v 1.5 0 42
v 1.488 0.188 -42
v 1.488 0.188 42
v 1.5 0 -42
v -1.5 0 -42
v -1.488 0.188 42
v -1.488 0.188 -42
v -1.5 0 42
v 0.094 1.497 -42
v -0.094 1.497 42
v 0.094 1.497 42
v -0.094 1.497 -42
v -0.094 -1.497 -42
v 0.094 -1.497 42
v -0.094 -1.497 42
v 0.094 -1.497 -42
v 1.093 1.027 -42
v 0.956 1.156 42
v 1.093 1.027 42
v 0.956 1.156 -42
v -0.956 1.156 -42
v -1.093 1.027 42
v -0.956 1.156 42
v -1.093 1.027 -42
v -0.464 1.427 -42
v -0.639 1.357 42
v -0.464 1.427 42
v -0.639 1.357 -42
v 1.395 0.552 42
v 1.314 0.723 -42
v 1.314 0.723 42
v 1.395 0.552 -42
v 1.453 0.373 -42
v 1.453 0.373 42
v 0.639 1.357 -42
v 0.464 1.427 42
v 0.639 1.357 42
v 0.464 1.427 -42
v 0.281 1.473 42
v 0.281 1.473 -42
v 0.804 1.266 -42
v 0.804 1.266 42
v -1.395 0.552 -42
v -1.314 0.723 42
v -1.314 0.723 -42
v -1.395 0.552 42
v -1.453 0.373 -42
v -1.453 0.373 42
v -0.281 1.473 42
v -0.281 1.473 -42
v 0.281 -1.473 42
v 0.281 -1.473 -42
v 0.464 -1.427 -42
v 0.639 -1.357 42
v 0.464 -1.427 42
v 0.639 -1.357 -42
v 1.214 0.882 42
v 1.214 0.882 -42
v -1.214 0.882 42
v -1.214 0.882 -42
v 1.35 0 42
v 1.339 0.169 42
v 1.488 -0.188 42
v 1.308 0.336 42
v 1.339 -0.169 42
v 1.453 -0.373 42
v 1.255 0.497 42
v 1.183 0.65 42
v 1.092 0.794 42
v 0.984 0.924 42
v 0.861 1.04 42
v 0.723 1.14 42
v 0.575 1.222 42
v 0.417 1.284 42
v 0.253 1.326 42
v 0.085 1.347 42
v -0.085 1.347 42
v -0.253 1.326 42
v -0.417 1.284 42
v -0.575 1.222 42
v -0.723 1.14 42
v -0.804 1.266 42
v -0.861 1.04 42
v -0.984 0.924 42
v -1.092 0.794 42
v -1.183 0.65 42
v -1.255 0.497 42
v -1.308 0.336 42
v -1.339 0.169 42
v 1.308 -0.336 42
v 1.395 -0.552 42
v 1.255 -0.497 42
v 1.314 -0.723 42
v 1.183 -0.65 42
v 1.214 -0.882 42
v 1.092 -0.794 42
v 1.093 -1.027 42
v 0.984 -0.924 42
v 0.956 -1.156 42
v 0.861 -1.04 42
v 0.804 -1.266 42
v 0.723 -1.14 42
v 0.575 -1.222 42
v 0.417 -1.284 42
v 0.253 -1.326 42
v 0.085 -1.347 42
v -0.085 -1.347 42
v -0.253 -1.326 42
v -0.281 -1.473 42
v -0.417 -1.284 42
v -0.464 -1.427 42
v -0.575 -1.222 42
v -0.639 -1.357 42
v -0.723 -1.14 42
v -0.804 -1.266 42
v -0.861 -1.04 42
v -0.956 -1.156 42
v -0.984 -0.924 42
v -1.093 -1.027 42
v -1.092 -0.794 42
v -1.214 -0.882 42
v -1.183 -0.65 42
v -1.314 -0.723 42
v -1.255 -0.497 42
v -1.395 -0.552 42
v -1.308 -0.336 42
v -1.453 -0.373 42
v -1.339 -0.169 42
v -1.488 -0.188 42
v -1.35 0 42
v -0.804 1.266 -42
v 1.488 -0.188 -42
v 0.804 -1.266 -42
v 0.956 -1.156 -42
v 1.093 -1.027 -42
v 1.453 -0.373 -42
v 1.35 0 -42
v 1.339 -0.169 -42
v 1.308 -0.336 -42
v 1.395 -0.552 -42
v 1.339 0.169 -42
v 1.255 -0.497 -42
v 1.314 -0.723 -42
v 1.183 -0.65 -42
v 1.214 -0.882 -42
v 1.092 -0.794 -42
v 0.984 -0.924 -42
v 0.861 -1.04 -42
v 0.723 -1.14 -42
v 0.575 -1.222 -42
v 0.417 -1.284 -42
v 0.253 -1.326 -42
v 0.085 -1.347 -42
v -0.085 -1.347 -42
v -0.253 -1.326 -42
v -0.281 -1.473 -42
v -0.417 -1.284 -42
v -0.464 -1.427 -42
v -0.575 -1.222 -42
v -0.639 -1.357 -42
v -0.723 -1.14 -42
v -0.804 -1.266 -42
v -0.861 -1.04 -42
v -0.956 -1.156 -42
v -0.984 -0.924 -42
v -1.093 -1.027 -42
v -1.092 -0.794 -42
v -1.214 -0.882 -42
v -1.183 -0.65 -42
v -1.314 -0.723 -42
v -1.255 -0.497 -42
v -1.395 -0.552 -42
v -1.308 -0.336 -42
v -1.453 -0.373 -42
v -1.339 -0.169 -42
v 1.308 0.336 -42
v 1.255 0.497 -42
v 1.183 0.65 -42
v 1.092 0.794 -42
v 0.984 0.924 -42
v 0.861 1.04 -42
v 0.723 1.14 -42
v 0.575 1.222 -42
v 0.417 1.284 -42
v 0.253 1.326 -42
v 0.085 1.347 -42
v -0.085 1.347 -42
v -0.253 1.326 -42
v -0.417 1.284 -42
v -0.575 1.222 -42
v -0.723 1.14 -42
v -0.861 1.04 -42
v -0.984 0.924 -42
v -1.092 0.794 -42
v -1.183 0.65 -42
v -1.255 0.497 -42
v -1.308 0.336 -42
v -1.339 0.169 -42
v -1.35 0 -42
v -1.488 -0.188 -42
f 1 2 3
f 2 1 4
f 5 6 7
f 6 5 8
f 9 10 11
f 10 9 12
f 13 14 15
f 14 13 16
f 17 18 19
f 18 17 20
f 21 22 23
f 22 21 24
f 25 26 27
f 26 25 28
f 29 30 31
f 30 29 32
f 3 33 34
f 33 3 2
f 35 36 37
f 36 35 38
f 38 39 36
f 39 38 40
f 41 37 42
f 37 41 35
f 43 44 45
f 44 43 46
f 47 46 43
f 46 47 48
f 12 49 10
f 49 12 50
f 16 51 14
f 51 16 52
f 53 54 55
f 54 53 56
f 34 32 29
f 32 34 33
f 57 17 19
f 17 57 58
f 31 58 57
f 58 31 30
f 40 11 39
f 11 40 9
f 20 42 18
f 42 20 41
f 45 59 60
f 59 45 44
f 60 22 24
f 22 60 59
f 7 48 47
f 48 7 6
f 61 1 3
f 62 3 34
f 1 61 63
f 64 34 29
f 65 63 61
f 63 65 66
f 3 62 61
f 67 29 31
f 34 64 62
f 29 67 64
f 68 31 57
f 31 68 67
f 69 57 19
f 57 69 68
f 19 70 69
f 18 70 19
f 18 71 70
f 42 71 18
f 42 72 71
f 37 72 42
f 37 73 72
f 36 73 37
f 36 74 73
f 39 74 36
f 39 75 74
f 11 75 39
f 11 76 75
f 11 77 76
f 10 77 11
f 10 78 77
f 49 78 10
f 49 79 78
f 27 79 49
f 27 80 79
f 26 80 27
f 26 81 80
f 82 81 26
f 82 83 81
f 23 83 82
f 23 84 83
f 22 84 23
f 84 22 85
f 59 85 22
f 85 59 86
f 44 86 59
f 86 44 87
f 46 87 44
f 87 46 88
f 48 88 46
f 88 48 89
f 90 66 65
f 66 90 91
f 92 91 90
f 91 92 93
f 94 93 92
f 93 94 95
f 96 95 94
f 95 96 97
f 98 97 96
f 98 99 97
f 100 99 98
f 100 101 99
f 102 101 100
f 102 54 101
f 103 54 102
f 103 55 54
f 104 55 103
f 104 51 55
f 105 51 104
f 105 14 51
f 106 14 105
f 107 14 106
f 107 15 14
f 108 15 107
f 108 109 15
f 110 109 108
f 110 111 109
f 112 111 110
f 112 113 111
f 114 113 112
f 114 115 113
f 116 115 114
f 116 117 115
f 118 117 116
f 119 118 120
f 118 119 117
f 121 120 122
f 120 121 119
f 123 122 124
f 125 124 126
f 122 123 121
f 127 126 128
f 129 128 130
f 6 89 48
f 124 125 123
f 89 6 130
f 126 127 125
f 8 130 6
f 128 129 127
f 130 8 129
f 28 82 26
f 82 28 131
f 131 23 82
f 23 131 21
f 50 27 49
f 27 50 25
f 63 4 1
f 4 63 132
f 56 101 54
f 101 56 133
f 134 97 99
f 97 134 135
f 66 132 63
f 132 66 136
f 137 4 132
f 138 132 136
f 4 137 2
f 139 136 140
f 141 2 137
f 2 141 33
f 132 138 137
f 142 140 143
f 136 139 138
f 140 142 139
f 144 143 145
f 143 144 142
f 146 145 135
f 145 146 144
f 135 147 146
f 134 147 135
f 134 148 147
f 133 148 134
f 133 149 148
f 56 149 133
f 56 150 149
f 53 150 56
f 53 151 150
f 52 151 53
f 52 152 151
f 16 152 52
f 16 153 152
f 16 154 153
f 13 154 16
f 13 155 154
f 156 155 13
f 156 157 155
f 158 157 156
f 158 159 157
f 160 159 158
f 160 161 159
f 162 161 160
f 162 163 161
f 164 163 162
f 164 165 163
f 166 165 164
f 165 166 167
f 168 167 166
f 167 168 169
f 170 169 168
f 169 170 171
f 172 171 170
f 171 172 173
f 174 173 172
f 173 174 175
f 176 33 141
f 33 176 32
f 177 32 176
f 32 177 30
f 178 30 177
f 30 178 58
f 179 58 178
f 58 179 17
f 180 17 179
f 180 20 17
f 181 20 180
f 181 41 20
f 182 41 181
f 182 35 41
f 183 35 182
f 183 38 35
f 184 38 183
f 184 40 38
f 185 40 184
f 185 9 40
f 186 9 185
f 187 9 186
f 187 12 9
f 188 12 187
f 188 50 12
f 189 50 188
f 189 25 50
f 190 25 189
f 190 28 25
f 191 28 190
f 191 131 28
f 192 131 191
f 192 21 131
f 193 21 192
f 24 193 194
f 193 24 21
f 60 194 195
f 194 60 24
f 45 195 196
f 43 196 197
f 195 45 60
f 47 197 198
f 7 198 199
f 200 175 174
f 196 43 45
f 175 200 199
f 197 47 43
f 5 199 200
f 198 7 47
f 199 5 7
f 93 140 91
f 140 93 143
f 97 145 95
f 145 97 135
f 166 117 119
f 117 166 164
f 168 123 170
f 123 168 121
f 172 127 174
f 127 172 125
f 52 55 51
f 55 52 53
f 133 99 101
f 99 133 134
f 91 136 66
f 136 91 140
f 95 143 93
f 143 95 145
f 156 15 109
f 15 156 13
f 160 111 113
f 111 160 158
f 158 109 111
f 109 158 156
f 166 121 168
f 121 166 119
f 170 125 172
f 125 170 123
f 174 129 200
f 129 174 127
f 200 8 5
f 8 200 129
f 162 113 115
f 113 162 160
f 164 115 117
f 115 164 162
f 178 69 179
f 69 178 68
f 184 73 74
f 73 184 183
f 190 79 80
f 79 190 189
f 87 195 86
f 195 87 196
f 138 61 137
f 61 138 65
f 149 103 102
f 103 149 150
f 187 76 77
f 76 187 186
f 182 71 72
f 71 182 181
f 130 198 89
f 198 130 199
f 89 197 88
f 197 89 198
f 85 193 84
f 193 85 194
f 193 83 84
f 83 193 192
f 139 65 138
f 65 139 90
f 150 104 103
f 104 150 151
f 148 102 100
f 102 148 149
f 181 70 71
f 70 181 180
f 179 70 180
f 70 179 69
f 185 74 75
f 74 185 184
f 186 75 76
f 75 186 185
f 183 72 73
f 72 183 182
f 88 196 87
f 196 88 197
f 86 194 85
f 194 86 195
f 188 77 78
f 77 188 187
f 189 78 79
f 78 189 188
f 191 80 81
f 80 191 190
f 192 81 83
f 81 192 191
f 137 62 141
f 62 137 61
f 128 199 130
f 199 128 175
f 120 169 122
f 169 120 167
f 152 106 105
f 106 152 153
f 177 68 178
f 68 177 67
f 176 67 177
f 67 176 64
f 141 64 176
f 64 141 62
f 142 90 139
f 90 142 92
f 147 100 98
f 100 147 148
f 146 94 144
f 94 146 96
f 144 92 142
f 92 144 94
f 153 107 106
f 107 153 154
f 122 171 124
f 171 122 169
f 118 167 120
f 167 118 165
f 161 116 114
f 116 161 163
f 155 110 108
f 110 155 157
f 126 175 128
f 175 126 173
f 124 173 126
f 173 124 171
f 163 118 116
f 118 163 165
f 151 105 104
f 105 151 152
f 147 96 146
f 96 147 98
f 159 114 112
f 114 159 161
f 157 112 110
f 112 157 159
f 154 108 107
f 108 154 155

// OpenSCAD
$fn = 50;


difference() {
	union() {
		translate(v = [0, 0, -42.0000000000]) {
			cylinder(h = 84, r = 1.5000000000);
		}
	}
	union() {
		translate(v = [0, 0, -100.0000000000]) {
			cylinder(h = 200, r = 1.3500000000);
		}
	}
}
